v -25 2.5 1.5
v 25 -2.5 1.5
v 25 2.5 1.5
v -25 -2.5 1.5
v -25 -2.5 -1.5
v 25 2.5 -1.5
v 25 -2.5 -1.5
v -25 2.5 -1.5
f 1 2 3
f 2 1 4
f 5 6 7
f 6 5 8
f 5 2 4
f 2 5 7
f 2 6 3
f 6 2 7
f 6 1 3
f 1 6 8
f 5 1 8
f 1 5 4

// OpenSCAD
// Key dimensions
key_length = 50;  // Length of the key
key_width = 5;    // Width of the key (reduced thickness for refinement)
key_height = 3;   // Height of the key (reduced thickness for refinement)

// Generate the key
module key() {
    cube([key_length, key_width, key_height], center = true);
}

// Render the key
key();
